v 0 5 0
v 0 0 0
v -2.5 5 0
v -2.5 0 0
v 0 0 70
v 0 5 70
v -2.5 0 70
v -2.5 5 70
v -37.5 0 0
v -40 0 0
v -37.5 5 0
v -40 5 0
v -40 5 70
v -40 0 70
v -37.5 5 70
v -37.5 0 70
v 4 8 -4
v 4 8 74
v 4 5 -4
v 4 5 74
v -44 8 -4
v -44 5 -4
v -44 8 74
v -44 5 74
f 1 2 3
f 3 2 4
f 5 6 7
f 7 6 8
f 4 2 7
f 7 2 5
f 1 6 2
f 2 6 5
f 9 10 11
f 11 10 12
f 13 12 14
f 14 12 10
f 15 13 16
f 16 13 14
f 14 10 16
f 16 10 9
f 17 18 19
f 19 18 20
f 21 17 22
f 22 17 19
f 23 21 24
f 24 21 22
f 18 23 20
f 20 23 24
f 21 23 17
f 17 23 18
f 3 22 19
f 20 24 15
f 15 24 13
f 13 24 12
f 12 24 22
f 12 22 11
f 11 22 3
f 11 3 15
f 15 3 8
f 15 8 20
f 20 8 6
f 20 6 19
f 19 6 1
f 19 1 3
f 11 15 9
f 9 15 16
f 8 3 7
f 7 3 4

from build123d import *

# Parameters (mm, degrees)
CROQUIS1_W              = 40
CROQUIS1_H              = 70
SALIENTE_EXTRUIR1_DEPTH = 5
CROQUIS3_W              = 48
CROQUIS3_H              = 78
SALIENTE_EXTRUIR3_DEPTH = 3
CROQUIS5_W              = 35
CROQUIS5_H              = 70
CORTAR_EXTRUIR1_DEPTH   = 5


with BuildPart() as part:
    # Croquis1 → Saliente-Extruir1 (new body)
    with BuildSketch(Plane(origin=(0, 0, 0), x_dir=(1, 0, 0), z_dir=(0, 1, 0))):
        with Locations((-20, -35)):
            Rectangle(CROQUIS1_W, CROQUIS1_H)
    extrude(amount=SALIENTE_EXTRUIR1_DEPTH)

    # Croquis3 → Saliente-Extruir3 (add)
    with BuildSketch(Plane(origin=(0, 5, 0), x_dir=(1, 0, 0), z_dir=(0, 1, 0))):
        with Locations((-20, -35)):
            Rectangle(CROQUIS3_W, CROQUIS3_H)
    extrude(amount=SALIENTE_EXTRUIR3_DEPTH)

    # Croquis5 → Cortar-Extruir1 (cut)
    with BuildSketch(Plane.XZ):
        with Locations((-20, 35)):
            Rectangle(CROQUIS5_W, CROQUIS5_H)
    extrude(amount=-CORTAR_EXTRUIR1_DEPTH, mode=Mode.SUBTRACT)


solid = part.part
